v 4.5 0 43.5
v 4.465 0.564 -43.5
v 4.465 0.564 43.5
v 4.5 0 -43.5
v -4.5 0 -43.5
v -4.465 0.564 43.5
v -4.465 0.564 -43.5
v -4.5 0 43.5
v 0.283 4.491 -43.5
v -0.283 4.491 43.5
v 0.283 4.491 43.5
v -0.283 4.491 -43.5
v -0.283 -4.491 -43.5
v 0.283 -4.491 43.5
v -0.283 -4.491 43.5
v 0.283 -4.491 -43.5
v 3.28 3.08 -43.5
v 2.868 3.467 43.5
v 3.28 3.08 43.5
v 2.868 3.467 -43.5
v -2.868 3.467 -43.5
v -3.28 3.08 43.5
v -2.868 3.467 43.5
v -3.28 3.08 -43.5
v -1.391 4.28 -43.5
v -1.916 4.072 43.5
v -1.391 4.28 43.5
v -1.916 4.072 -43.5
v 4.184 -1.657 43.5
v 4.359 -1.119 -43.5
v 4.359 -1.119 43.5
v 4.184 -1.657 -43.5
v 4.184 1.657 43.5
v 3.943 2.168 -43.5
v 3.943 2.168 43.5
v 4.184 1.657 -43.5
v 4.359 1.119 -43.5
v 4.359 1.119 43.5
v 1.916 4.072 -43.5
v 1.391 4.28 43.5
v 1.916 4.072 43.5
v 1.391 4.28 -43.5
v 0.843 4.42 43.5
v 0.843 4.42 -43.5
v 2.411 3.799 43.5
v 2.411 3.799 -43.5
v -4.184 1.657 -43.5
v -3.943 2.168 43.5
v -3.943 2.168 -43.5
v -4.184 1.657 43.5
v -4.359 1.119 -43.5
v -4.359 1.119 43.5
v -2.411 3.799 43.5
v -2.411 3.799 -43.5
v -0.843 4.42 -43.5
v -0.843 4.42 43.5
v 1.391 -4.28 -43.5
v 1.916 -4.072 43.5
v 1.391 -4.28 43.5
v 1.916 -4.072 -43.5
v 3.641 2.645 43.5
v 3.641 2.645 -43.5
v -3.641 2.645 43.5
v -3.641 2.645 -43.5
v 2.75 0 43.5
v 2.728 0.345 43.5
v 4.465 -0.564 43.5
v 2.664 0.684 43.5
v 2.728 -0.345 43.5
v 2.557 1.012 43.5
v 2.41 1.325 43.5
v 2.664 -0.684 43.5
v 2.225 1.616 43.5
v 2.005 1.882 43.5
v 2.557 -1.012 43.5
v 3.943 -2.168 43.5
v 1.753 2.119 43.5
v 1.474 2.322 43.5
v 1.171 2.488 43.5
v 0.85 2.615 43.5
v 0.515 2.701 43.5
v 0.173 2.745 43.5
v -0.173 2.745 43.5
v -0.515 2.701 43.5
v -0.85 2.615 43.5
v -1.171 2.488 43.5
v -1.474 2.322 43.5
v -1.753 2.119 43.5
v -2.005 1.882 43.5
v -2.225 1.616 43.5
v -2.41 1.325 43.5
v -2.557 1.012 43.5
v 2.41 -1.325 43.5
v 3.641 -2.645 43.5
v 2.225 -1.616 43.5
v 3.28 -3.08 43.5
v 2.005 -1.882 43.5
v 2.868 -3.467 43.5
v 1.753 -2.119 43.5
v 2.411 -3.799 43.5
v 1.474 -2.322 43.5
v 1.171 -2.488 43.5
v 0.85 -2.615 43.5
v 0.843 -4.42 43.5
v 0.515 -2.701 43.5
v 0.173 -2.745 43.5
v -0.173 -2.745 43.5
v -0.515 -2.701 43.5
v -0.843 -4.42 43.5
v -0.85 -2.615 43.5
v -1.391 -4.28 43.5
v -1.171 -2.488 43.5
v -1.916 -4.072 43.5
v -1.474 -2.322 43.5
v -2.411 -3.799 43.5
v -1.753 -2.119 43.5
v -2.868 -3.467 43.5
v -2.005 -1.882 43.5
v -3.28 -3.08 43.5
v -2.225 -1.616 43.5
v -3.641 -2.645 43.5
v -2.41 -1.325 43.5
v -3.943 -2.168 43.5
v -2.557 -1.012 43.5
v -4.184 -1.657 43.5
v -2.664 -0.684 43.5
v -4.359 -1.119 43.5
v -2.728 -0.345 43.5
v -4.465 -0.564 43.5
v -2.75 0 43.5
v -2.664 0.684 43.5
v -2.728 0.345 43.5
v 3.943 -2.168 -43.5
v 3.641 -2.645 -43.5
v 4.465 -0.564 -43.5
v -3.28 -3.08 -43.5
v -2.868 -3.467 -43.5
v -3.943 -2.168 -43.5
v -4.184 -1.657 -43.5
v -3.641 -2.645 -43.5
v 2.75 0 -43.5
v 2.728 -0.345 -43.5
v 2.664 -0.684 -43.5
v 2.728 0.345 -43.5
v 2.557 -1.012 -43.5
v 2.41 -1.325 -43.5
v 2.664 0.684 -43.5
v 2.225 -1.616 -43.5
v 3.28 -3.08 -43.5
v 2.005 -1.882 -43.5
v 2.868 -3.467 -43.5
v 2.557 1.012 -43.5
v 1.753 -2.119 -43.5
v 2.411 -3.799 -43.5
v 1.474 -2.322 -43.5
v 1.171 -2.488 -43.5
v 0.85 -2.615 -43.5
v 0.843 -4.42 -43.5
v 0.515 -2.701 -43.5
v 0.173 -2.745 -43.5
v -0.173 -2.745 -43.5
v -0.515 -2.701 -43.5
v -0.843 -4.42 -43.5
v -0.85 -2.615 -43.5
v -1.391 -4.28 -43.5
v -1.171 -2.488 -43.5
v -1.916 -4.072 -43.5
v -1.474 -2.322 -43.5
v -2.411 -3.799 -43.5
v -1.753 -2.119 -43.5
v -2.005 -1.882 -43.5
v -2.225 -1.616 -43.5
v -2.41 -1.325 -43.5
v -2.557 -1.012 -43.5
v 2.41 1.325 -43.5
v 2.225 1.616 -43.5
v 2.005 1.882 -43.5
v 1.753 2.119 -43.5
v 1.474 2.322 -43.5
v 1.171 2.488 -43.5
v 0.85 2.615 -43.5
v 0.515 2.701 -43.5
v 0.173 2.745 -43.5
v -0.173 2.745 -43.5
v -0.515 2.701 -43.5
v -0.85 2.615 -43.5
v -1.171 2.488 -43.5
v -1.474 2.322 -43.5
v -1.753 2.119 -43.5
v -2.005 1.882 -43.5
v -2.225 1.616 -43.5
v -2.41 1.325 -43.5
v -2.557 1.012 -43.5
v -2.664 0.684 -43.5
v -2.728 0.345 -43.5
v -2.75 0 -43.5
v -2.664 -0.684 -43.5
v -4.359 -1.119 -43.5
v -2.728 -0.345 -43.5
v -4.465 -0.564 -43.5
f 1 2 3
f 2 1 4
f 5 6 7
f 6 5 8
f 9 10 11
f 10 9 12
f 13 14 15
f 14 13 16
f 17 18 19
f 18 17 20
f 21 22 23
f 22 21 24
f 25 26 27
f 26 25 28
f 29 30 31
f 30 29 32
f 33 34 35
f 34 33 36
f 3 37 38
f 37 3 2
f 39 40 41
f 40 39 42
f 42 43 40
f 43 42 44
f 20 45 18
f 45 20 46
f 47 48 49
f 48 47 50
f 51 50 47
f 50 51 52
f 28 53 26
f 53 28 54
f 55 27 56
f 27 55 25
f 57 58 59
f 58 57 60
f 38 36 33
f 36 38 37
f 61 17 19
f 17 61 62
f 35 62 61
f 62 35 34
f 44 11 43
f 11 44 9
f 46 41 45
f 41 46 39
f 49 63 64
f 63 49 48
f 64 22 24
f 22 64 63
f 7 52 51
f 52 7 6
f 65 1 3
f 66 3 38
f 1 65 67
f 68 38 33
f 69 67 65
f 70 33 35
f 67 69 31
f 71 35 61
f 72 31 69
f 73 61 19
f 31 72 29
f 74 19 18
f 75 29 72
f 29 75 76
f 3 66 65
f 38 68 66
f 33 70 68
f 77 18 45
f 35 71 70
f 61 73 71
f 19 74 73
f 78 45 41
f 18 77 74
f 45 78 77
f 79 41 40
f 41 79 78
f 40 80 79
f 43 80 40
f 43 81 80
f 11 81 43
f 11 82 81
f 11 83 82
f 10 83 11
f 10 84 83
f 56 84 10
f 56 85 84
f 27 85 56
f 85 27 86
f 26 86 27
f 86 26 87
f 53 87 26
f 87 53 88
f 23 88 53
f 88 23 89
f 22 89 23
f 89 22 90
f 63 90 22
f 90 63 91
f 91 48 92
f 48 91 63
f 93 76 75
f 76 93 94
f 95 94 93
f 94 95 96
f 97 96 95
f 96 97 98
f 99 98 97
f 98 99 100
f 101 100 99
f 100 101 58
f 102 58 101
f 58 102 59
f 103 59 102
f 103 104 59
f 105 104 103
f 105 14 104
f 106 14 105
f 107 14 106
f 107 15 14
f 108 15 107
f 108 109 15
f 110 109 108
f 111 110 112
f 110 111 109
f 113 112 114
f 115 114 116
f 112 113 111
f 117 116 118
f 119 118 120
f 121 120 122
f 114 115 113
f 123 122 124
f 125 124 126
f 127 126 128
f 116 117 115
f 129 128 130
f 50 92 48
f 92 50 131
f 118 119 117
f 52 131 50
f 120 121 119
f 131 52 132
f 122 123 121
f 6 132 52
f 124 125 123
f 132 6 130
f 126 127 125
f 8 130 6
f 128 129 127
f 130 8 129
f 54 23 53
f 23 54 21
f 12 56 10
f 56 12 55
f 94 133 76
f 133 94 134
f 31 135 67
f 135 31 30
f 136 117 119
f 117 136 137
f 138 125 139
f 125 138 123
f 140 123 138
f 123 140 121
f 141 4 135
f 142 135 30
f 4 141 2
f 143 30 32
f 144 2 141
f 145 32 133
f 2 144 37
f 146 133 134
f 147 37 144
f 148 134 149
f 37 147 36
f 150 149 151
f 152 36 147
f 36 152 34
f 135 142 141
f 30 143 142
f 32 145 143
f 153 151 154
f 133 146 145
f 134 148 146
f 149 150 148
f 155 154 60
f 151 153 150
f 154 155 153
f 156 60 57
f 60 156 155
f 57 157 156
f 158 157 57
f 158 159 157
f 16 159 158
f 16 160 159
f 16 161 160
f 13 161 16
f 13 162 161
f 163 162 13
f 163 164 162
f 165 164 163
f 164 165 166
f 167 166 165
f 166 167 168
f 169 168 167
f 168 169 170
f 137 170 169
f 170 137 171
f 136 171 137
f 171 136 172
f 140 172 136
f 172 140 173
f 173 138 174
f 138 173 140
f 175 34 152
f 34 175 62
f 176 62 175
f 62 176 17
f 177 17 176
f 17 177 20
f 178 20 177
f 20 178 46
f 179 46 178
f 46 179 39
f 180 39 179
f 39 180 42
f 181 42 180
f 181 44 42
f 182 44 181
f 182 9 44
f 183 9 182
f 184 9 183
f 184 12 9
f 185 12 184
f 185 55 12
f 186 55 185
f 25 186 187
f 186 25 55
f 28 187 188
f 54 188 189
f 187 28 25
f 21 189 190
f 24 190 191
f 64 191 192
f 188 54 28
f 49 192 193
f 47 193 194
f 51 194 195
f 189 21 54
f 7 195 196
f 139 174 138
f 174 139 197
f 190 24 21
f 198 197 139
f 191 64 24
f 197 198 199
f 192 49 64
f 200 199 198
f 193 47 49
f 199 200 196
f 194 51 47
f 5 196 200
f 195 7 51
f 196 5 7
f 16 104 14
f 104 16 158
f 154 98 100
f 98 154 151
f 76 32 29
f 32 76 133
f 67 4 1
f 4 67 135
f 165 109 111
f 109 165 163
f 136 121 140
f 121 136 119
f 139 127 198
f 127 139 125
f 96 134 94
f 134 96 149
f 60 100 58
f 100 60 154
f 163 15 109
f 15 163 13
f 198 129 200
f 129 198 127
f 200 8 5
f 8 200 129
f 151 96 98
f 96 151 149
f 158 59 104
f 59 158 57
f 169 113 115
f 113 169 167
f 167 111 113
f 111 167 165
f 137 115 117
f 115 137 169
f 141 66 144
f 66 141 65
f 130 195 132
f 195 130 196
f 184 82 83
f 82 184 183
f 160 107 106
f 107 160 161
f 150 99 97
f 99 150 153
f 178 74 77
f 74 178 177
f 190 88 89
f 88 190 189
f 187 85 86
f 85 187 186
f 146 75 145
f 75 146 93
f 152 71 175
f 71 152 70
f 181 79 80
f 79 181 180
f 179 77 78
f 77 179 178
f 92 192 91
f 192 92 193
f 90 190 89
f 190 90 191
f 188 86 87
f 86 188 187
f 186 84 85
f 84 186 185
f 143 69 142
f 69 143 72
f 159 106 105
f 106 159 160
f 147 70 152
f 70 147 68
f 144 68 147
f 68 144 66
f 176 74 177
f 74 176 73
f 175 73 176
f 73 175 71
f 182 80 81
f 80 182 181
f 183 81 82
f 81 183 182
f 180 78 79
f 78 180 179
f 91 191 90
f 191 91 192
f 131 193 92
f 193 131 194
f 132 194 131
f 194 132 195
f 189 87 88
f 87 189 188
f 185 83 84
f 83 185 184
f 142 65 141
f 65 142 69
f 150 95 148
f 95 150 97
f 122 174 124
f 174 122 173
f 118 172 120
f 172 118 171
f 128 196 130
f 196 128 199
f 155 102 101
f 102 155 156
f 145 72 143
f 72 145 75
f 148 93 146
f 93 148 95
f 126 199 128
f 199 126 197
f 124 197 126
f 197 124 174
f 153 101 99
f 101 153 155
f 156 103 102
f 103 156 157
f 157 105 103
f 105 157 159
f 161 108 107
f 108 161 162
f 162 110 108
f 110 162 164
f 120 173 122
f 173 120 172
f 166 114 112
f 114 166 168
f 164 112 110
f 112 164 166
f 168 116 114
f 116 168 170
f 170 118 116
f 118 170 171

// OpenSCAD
$fn = 50;


difference() {
	union() {
		translate(v = [0, 0, -43.5000000000]) {
			cylinder(h = 87, r = 4.5000000000);
		}
	}
	union() {
		translate(v = [0, 0, -100.0000000000]) {
			cylinder(h = 200, r = 2.7500000000);
		}
	}
}
